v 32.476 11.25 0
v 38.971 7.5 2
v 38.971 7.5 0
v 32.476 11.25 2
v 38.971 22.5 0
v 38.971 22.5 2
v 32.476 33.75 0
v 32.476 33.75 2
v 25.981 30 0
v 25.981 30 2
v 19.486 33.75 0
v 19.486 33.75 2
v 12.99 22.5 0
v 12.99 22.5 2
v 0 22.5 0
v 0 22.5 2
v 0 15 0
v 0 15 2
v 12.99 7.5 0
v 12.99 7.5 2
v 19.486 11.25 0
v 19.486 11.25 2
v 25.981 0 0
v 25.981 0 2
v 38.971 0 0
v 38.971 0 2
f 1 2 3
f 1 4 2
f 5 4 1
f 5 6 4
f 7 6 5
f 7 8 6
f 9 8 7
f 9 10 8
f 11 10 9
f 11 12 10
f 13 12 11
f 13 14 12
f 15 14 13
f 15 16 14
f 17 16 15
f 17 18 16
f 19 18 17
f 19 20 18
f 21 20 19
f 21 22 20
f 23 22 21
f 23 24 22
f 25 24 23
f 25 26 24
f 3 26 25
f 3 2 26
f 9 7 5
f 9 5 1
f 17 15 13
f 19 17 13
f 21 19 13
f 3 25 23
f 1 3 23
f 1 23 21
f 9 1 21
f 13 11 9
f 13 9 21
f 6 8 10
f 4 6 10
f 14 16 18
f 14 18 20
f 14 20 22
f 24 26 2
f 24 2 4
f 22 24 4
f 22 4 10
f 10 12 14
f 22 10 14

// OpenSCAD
/*
  The Einstein hat is an aperiodic monotile, discovered by amateur mathematician David Smith in November 2022.
  https://en.wikipedia.org/wiki/Einstein_problem#The_hat_and_the_spectre

  It’s a 13-sided shape that:
    * Never forms a repeating pattern (aperiodic)
    * Uses only a single shape (monotile)
    * Requires no matching rules (no markings or colours)
    * Works without flipping (no reflections needed)
*/

// The length of the longest edge.
longest_edge = 15;   // 0.1
                     // The hat maps to an underlying hex grid. This is the length of the hexagon's edge.
                     // By definition, this is also half the length of the distance between opposite points of the hexagon.
half_ff_width = (longest_edge / 2) * tan(60);  // Half the face-to-face width of the hexagon.

// Height of the hat object. Set to 0 for 2D.
height = 2.0; // 0.5

module draw_hat() {
    polygon(
        points = [[0,                   longest_edge],
                  [0,                   longest_edge * 1.5],
                  [half_ff_width,       longest_edge * 1.5],
                  [half_ff_width * 1.5, longest_edge * 2.25],
                  [half_ff_width * 2,   longest_edge * 2],
                  [half_ff_width * 2.5, longest_edge * 2.25],
                  [half_ff_width * 3,   longest_edge * 1.5],
                  [half_ff_width * 2.5, longest_edge * 0.75],
                  [half_ff_width * 3,   longest_edge * 0.5],
                  [half_ff_width * 3,   0],
                  [half_ff_width * 2,   0],
                  [half_ff_width * 1.5, longest_edge * 0.75],
                  [half_ff_width,       longest_edge * 0.5],
                 ],
        paths = [[0, 1, 2, 3, 4, 5, 6, 7, 8, 9, 10, 11, 12, 0]]
    );
}

if (height == 0) {
  draw_hat();
} else {
    linear_extrude(height) {
        draw_hat();
    }
}
